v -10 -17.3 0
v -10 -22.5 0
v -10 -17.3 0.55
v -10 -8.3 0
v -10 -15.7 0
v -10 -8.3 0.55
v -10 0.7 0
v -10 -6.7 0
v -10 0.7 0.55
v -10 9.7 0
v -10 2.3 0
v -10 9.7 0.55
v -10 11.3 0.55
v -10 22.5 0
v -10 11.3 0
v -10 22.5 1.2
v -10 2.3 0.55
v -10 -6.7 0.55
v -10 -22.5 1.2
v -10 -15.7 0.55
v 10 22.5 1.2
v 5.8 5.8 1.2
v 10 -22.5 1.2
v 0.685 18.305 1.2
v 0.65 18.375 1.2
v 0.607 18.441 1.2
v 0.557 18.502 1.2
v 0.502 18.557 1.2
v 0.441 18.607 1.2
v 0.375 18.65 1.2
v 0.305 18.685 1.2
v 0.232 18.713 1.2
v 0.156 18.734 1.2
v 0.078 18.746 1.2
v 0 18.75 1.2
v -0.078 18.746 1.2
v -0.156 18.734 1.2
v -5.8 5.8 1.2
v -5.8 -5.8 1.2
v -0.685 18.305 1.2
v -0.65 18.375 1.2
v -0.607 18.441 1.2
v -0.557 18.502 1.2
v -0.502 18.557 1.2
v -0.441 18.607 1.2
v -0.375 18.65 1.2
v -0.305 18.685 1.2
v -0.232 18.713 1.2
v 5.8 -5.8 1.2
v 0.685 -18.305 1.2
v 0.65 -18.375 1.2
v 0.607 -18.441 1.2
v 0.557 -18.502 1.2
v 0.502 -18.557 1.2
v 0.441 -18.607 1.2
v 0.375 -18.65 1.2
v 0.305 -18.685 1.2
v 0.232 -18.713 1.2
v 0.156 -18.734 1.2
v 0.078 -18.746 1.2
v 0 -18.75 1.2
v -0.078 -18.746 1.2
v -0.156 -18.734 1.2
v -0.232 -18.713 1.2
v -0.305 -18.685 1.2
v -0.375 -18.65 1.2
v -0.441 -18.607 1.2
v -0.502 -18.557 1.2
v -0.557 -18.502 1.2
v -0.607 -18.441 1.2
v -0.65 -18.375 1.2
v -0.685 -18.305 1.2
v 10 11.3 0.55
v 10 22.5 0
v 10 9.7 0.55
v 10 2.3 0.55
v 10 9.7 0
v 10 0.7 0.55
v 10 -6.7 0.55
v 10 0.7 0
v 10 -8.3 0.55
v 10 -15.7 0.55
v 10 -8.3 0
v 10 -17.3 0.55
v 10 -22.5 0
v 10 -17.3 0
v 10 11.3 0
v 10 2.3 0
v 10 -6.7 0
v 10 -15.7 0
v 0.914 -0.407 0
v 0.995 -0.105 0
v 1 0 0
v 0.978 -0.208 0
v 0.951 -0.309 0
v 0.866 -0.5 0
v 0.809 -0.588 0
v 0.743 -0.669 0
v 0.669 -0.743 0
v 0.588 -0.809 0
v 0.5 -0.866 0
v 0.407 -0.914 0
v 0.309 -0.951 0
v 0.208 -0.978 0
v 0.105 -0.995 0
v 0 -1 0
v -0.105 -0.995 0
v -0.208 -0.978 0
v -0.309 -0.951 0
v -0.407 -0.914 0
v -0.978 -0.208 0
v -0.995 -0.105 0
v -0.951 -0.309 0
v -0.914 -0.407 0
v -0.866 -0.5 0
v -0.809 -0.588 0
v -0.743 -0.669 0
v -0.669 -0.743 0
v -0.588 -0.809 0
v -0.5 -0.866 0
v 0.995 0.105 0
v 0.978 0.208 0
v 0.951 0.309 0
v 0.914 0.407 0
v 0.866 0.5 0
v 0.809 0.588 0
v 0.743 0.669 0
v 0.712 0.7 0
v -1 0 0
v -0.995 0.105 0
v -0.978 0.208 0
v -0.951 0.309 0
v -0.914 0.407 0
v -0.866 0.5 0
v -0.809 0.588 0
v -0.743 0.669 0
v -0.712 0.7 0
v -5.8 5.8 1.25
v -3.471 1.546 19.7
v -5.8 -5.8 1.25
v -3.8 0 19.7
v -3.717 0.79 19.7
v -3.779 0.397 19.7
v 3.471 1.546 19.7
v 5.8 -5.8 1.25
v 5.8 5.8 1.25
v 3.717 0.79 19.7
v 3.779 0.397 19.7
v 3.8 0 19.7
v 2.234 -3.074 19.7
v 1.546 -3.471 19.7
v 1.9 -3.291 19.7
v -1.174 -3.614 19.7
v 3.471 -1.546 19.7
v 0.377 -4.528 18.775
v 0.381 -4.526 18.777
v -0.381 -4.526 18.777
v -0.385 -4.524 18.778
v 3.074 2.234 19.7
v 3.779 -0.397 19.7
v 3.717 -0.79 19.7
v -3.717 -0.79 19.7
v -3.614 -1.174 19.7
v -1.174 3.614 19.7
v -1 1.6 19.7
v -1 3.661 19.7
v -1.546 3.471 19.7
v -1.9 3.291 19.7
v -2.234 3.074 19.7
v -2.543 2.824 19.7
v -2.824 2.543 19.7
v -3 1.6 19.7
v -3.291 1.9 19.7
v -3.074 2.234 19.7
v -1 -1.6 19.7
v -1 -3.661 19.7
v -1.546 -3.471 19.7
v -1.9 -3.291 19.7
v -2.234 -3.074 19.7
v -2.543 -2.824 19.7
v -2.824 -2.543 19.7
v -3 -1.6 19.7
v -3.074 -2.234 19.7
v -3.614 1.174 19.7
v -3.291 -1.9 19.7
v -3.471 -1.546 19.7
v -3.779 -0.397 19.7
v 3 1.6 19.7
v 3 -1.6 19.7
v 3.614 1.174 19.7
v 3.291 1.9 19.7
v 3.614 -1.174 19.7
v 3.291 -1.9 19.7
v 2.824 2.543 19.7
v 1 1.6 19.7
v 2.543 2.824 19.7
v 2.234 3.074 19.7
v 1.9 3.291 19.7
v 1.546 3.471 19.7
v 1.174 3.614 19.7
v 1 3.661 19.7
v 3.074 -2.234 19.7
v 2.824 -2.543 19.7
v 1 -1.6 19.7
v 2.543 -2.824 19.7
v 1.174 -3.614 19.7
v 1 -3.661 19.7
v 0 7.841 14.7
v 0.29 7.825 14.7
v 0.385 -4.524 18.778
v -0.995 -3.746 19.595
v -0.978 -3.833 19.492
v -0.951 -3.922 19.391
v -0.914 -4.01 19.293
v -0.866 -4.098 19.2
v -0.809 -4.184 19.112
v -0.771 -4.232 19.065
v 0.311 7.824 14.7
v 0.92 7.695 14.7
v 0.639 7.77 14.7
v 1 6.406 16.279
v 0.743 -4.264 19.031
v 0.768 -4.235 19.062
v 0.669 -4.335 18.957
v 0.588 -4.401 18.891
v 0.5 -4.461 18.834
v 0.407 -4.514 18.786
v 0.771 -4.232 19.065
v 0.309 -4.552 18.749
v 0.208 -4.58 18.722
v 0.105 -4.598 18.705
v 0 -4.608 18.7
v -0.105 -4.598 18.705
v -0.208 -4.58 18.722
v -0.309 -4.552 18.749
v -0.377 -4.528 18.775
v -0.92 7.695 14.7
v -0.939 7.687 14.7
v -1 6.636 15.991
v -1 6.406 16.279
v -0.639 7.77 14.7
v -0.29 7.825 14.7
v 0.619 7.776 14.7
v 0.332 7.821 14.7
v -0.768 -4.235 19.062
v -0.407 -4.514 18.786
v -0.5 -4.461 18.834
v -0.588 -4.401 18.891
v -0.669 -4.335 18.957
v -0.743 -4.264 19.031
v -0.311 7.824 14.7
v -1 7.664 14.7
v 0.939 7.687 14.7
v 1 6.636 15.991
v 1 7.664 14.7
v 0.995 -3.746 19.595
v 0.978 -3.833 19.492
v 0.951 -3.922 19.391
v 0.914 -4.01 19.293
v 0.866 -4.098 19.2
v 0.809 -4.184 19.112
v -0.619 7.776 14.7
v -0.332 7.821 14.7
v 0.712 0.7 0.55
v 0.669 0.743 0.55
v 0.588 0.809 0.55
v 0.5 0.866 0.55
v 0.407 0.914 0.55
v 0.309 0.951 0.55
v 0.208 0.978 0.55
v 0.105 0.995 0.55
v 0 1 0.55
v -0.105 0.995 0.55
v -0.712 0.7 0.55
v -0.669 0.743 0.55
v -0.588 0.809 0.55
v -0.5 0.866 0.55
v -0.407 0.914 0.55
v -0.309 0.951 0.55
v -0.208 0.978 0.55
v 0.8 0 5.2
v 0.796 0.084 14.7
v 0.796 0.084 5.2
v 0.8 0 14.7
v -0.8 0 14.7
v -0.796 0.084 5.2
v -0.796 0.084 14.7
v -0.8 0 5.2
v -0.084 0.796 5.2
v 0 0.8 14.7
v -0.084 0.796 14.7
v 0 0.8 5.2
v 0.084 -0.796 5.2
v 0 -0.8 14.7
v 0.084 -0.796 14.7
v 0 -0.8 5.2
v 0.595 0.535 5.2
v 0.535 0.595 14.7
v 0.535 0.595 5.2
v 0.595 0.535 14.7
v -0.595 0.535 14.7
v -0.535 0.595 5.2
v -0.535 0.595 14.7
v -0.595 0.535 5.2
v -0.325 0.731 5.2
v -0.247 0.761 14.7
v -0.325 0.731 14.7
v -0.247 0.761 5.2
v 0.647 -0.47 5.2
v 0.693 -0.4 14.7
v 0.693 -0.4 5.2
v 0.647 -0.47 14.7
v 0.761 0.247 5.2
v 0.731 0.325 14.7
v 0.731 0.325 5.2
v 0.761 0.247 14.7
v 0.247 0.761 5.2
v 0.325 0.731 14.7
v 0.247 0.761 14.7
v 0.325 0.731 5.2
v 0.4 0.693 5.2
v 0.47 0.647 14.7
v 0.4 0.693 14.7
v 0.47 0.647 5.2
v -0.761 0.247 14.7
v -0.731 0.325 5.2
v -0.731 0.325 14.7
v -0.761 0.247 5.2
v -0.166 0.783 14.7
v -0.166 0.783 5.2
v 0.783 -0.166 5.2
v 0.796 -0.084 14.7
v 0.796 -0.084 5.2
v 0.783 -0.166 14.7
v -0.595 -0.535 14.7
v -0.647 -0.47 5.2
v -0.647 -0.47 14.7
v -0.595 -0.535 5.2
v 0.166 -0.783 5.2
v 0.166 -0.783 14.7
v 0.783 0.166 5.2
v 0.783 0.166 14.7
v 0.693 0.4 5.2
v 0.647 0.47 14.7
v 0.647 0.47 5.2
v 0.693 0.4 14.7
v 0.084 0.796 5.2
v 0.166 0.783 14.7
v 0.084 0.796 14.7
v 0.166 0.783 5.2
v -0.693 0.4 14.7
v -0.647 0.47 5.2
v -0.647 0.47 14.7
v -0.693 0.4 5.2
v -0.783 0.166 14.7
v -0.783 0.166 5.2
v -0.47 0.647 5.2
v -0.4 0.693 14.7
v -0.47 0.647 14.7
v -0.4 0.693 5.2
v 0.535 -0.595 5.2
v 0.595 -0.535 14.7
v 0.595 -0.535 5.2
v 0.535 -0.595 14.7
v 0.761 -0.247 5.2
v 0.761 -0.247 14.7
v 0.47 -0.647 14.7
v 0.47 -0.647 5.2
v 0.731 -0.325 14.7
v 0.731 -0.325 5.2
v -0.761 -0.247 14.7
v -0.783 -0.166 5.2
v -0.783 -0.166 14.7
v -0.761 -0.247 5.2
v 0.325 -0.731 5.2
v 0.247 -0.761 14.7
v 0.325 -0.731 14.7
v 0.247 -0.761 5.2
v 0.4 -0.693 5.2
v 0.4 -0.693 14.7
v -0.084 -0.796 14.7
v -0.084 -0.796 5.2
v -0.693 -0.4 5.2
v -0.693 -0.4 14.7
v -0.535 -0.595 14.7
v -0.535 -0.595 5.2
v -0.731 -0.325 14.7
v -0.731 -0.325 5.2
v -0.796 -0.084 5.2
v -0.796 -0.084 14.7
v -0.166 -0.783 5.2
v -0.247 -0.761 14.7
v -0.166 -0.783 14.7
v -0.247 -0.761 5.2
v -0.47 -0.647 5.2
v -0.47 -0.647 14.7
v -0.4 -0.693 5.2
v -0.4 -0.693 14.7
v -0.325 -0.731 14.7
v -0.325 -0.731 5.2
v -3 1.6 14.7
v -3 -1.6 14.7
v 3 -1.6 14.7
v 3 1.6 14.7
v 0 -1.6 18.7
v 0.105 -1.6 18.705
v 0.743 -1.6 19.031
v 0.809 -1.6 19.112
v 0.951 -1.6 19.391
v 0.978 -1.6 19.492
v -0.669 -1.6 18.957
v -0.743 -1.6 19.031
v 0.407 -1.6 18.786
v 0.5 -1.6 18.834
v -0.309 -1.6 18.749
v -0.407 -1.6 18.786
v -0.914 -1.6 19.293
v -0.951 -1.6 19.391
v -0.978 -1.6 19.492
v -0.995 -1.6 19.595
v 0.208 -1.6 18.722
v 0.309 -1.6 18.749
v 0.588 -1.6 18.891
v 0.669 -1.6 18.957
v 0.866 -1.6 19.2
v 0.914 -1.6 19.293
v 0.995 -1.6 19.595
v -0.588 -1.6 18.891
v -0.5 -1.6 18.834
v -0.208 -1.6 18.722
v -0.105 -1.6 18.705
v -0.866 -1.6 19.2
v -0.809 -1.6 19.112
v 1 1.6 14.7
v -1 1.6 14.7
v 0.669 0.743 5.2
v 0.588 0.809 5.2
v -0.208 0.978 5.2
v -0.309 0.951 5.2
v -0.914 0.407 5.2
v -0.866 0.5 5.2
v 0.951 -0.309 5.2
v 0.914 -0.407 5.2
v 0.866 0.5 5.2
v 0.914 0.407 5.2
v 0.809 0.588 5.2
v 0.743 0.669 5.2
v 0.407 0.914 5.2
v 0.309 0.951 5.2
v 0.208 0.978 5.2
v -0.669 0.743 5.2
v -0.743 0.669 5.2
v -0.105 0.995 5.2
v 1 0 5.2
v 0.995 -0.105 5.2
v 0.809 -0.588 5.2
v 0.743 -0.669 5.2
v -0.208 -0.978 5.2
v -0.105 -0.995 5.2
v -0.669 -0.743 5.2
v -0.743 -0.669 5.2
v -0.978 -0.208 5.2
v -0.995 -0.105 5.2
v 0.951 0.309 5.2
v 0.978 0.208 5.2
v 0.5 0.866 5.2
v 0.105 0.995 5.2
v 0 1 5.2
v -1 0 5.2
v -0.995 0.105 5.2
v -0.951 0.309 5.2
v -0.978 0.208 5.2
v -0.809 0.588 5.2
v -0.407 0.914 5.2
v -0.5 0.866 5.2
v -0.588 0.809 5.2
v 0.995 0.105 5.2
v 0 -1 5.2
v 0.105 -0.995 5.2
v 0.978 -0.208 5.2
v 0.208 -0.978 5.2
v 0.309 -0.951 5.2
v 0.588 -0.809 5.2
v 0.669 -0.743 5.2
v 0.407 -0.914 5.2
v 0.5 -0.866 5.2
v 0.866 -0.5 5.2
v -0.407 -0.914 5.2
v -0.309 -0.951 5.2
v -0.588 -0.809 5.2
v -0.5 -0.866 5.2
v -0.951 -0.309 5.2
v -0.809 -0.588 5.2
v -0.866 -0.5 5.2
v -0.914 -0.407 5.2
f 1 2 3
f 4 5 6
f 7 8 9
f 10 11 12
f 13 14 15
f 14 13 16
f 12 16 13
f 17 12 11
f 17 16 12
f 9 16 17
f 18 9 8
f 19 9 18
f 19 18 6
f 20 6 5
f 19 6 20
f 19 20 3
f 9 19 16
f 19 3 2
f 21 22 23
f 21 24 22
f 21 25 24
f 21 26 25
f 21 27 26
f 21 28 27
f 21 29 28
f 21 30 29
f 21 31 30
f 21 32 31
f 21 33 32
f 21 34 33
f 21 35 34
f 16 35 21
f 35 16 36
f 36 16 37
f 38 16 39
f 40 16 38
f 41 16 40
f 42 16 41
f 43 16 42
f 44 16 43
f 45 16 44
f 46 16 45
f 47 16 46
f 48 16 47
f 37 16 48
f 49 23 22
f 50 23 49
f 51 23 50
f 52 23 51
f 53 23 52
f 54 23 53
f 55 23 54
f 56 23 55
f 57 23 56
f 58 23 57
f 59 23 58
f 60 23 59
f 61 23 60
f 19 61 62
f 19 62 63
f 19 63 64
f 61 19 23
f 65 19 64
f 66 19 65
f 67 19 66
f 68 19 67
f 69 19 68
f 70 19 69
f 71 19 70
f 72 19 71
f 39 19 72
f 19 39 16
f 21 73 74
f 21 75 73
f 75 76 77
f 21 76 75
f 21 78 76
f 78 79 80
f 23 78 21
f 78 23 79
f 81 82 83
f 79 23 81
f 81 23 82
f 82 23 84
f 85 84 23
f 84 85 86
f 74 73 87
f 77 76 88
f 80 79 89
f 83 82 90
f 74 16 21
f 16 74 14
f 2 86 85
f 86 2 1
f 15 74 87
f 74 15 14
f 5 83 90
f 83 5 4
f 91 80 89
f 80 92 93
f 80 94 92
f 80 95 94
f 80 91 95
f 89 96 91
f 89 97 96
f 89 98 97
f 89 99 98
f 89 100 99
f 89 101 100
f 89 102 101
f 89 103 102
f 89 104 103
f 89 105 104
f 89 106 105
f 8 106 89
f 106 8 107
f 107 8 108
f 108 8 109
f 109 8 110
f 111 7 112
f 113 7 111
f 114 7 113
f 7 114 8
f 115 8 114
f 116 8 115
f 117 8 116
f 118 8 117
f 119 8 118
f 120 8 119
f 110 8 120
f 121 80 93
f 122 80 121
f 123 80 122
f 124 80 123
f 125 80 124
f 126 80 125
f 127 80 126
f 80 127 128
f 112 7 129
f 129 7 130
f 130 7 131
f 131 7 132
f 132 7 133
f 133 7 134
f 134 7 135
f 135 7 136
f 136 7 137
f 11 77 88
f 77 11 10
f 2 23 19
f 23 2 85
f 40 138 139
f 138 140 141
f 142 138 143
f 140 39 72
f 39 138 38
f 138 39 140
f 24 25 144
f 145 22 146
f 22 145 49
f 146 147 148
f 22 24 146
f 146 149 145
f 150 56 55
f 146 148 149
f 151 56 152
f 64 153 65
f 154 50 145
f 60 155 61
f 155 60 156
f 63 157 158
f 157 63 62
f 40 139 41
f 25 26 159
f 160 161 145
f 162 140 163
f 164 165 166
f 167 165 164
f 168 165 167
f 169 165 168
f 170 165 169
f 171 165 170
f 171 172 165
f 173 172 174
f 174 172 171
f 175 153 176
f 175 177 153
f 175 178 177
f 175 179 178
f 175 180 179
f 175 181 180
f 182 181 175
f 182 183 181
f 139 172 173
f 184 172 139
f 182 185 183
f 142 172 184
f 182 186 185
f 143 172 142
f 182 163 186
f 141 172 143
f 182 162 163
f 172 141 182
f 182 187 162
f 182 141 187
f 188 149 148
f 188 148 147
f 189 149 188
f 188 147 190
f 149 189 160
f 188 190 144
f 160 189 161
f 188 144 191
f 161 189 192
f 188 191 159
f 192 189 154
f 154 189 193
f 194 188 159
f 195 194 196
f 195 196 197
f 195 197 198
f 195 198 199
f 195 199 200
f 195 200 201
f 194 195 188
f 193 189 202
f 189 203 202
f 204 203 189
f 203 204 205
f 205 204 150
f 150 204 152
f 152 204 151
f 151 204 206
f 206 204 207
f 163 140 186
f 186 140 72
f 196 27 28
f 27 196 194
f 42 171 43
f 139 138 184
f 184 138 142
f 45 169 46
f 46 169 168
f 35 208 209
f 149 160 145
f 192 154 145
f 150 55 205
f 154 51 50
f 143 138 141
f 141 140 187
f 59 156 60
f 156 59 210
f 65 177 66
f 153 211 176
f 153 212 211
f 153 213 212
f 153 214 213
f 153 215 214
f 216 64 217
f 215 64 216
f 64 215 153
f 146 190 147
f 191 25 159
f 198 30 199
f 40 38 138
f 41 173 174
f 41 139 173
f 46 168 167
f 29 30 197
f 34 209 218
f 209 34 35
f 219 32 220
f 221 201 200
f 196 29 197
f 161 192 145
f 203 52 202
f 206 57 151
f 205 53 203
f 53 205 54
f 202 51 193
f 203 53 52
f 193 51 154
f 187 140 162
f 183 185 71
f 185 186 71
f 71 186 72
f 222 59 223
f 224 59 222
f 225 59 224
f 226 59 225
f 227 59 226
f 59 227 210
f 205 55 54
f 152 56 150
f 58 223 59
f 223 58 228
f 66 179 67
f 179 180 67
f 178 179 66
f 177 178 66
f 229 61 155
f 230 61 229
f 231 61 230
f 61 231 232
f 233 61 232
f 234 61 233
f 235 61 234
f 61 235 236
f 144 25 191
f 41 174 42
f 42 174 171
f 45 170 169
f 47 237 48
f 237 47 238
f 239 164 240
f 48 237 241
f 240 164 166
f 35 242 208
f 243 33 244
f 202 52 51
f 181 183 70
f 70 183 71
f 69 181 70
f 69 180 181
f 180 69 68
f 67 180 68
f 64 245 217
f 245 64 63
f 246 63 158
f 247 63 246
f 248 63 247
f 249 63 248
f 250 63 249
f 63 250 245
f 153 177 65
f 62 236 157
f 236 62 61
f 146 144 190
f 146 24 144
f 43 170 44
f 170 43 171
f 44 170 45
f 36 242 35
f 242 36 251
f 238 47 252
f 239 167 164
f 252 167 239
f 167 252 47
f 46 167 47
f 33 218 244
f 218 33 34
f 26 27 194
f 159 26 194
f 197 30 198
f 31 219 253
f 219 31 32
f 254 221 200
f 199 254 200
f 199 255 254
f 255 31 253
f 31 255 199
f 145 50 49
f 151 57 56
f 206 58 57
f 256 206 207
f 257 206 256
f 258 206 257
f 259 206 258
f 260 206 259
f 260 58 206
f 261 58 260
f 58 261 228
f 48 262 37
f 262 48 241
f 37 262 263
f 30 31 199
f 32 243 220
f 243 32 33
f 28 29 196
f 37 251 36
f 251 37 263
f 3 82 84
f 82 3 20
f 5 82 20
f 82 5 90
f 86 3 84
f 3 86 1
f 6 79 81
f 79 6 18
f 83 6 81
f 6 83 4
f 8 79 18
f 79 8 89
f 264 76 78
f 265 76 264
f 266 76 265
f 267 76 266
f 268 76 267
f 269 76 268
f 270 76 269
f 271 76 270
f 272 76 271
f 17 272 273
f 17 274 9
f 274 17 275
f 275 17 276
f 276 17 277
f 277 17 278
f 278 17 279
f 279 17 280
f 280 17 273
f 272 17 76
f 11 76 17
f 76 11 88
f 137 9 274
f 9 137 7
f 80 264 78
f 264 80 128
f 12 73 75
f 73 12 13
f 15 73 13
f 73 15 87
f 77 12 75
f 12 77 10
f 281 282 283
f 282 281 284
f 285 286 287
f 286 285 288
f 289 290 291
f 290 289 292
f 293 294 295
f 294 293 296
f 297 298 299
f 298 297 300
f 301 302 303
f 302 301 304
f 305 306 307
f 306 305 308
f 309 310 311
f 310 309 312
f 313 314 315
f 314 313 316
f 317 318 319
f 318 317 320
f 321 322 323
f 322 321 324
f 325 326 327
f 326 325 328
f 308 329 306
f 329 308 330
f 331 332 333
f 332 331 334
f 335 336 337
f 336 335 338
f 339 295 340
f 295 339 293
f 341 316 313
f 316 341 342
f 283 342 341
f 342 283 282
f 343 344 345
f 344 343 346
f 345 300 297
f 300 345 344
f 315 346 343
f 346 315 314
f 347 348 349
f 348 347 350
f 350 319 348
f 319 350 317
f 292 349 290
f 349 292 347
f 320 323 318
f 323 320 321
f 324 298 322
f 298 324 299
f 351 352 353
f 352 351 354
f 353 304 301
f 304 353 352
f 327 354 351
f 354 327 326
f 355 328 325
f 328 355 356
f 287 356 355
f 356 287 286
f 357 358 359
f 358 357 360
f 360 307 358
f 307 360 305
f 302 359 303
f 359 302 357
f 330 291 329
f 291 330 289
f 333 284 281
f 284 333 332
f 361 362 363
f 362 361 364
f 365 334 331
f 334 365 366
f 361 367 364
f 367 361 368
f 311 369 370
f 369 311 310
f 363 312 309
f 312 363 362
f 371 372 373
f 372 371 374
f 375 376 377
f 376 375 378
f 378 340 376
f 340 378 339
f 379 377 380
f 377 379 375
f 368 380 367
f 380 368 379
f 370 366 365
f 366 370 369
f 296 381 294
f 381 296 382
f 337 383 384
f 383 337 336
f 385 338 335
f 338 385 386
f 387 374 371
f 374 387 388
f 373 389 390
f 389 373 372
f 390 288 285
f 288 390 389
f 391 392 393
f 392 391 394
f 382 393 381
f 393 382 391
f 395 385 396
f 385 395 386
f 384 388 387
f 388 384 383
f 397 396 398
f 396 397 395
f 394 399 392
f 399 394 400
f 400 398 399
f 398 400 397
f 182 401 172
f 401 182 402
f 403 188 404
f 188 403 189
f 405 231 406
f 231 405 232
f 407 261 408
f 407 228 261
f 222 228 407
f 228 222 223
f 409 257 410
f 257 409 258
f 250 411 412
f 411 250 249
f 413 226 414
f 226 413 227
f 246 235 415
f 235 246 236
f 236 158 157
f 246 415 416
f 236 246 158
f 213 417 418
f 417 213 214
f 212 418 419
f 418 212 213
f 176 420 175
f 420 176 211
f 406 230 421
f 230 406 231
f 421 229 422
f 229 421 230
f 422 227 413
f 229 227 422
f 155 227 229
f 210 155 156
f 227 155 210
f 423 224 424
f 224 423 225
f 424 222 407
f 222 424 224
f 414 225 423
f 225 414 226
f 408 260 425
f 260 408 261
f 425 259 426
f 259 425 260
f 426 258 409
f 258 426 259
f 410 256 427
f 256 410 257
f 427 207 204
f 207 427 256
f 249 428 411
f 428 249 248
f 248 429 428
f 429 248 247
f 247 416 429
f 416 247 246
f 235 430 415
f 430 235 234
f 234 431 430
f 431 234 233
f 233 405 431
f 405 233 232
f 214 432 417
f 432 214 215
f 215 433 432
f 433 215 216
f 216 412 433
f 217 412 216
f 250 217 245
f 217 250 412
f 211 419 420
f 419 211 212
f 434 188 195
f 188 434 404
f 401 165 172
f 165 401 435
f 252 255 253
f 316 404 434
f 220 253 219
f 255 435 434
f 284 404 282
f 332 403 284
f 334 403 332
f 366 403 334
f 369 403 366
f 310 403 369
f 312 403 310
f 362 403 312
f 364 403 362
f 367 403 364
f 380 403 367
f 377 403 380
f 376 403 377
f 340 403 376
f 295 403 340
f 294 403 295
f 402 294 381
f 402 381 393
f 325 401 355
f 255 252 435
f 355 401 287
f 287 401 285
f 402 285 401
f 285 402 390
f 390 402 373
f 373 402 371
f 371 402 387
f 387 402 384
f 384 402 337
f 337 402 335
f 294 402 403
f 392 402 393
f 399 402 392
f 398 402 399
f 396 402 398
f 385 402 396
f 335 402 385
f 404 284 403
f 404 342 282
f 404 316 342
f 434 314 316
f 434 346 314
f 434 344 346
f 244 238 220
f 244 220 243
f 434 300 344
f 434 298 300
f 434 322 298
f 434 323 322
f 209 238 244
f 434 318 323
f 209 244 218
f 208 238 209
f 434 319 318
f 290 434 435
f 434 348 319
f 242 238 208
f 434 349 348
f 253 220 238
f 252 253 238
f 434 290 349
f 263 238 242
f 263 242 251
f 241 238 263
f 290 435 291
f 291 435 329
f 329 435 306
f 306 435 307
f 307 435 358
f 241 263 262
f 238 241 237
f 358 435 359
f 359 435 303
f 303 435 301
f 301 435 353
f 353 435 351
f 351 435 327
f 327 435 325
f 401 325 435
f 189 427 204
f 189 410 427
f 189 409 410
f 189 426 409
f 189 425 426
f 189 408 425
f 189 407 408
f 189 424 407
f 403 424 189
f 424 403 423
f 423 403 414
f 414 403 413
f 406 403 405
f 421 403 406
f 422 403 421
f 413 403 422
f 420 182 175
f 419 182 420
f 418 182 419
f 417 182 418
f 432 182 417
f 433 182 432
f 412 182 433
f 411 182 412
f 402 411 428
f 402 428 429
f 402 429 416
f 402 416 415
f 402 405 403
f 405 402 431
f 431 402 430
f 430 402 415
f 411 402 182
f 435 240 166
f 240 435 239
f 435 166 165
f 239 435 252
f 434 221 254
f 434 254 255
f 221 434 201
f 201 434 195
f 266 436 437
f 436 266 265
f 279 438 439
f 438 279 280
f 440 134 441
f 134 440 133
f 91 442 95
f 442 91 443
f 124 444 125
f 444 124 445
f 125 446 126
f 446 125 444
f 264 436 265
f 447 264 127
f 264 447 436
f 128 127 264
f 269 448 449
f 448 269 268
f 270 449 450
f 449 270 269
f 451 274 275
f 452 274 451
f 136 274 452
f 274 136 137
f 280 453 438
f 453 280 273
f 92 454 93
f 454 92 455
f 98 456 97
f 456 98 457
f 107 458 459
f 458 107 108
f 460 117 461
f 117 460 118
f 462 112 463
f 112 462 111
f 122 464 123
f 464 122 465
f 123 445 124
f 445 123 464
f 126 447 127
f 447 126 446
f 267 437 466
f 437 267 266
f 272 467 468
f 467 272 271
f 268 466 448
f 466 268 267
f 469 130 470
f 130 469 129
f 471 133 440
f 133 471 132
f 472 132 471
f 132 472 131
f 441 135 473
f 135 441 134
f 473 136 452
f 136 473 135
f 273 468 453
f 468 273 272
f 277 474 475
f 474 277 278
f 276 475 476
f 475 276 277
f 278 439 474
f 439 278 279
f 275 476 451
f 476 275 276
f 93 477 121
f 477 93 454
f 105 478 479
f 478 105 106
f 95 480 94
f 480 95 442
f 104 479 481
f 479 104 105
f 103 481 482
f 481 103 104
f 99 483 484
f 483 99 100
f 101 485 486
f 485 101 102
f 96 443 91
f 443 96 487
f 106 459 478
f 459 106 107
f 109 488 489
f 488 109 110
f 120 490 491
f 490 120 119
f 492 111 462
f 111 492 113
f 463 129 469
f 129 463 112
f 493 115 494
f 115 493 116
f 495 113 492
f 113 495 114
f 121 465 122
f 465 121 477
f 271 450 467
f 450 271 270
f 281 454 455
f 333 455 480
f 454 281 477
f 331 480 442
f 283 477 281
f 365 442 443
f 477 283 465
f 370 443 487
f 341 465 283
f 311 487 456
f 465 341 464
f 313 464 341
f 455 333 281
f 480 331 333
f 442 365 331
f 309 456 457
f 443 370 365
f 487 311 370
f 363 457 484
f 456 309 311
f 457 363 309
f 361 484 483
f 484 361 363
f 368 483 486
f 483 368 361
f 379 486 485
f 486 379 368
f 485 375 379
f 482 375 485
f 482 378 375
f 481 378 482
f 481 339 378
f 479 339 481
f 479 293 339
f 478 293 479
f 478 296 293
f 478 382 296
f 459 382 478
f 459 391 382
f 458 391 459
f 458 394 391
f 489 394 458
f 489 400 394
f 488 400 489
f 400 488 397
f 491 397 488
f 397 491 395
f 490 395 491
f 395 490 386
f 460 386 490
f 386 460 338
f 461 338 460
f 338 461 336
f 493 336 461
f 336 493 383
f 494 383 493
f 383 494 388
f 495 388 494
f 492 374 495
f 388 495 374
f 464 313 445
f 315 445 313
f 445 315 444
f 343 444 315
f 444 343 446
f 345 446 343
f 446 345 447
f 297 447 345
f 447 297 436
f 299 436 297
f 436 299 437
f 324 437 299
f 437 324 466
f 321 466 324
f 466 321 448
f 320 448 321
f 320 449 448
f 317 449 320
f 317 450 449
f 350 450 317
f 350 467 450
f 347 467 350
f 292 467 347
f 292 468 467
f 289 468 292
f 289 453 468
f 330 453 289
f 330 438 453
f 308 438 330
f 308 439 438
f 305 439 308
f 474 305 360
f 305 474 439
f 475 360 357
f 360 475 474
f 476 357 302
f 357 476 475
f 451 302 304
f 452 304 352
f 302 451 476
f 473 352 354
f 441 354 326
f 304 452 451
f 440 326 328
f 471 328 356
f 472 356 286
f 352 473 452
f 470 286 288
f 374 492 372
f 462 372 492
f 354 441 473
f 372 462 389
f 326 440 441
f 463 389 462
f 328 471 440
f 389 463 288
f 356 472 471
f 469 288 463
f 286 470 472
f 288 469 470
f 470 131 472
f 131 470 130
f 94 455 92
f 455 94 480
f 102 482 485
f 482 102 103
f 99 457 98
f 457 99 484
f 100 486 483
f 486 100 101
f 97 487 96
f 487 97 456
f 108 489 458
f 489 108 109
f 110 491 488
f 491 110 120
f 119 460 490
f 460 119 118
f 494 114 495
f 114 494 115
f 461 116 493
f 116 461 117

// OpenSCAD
// =============================================================================
// PROJECT: VERTICAL FIXED-WING "AERO-FOIL" ELRS MOUNT
// VERSION: 1.2 (Symmetrical Airfoil & Glue-Retention)
// DESCRIPTION: Dual-teardrop profile (Airfoil) for zero-drag performance.
//              Optimized for glue-retention (no zip-tie slots).
// =============================================================================

/* [1. BASE PLATE SETTINGS] */
base_w          = 20.0;  
base_l          = 45.0;  // Slightly longer to accommodate the dual-taper
base_thick      = 1.2;   
slot_width      = 1.6;   

/* [2. ANTENNA HARDWARE SPECS] */
dipole_arm_l    = 13.0;  
junction_l      = 5.5;   
junction_dia    = 3.2;   
wire_dia        = 1.6;   
feedline_dia    = 2.0;   
wall_thickness  = 2.2; 

/* [3. AERO SETTINGS] */
// How far the "points" of the teardrop extend from the center (mm)
aero_taper_dist = 18.0; 
$fn = 60;

/* [4. DYNAMIC CALCULATIONS] */
pylon_h = dipole_arm_l + junction_l; 
pylon_dia = junction_dia + (wall_thickness * 2);

// =============================================================================
// MAIN ASSEMBLY
// =============================================================================

difference() {
    
    // --- STEP 1: THE SOLID BODY (The Symmetrical Airfoil) ---
    union() {
        // A. The Flexible Base Plate
        translate([0, 0, base_thick/2])
            cube([base_w, base_l, base_thick], center=true);
        
        // B. The Double-Teardrop Pylon (Airfoil)
        hull() {
            // 1. The Central Cylinder (Houses the hardware)
            cylinder(h=pylon_h + base_thick, d=pylon_dia);
            
            // 2. The Leading Edge (Front Point)
            translate([0, -aero_taper_dist, 0])
                cylinder(h=base_thick, d=1.5); 
            
            // 3. The Trailing Edge (Rear Point)
            translate([0, aero_taper_dist, 0])
                cylinder(h=base_thick, d=1.5); 

            // 4. Base Gusset (Structural support)
            translate([0, 0, base_thick])
                cube([pylon_dia + 4, pylon_dia + 4, 0.1], center=true);
        }
    }

    // --- STEP 2: THE SUBTRACTIONS ---

    // A. FLEX RELIEF SLOTS (Bottom membrane only)
    for(i = [-base_l/2 + 6 : 9 : base_l/2 - 6]) {
        translate([0, i, -0.1])
            cube([base_w + 2, slot_width, base_thick + 0.1], center=true);
    }

    // B. THE ANTENNA CAVITY (Top-Down)
    translate([0, 0, pylon_h + base_thick]) {
        
        // 1. Vertical Dipole Bore
        translate([0, 0, -pylon_h - 1])
            cylinder(h=pylon_h + 2, d=wire_dia);
            
        // 2. T-Junction "Saddle" 
        rotate([0, 90, 0])
            cylinder(h=junction_l + 0.5, d=junction_dia, center=true);
            
        // 3. Feedline Exit (Rear-facing)
        translate([0, pylon_dia/2, 0])
            rotate([90, 0, 0])
                cylinder(h=aero_taper_dist + 5, d=feedline_dia);

        // 4. Top Access Slots (Clean drop-in)
        cube([junction_l + 0.5, junction_dia, 10], center=true);
        translate([0, aero_taper_dist/2, 0])
            cube([feedline_dia, aero_taper_dist, 10], center=true);
    }

    // C. WIRE POKEOUT (Through-base access)
    translate([0, 0, -1])
        cylinder(h=base_thick + 5, d=feedline_dia);
}
